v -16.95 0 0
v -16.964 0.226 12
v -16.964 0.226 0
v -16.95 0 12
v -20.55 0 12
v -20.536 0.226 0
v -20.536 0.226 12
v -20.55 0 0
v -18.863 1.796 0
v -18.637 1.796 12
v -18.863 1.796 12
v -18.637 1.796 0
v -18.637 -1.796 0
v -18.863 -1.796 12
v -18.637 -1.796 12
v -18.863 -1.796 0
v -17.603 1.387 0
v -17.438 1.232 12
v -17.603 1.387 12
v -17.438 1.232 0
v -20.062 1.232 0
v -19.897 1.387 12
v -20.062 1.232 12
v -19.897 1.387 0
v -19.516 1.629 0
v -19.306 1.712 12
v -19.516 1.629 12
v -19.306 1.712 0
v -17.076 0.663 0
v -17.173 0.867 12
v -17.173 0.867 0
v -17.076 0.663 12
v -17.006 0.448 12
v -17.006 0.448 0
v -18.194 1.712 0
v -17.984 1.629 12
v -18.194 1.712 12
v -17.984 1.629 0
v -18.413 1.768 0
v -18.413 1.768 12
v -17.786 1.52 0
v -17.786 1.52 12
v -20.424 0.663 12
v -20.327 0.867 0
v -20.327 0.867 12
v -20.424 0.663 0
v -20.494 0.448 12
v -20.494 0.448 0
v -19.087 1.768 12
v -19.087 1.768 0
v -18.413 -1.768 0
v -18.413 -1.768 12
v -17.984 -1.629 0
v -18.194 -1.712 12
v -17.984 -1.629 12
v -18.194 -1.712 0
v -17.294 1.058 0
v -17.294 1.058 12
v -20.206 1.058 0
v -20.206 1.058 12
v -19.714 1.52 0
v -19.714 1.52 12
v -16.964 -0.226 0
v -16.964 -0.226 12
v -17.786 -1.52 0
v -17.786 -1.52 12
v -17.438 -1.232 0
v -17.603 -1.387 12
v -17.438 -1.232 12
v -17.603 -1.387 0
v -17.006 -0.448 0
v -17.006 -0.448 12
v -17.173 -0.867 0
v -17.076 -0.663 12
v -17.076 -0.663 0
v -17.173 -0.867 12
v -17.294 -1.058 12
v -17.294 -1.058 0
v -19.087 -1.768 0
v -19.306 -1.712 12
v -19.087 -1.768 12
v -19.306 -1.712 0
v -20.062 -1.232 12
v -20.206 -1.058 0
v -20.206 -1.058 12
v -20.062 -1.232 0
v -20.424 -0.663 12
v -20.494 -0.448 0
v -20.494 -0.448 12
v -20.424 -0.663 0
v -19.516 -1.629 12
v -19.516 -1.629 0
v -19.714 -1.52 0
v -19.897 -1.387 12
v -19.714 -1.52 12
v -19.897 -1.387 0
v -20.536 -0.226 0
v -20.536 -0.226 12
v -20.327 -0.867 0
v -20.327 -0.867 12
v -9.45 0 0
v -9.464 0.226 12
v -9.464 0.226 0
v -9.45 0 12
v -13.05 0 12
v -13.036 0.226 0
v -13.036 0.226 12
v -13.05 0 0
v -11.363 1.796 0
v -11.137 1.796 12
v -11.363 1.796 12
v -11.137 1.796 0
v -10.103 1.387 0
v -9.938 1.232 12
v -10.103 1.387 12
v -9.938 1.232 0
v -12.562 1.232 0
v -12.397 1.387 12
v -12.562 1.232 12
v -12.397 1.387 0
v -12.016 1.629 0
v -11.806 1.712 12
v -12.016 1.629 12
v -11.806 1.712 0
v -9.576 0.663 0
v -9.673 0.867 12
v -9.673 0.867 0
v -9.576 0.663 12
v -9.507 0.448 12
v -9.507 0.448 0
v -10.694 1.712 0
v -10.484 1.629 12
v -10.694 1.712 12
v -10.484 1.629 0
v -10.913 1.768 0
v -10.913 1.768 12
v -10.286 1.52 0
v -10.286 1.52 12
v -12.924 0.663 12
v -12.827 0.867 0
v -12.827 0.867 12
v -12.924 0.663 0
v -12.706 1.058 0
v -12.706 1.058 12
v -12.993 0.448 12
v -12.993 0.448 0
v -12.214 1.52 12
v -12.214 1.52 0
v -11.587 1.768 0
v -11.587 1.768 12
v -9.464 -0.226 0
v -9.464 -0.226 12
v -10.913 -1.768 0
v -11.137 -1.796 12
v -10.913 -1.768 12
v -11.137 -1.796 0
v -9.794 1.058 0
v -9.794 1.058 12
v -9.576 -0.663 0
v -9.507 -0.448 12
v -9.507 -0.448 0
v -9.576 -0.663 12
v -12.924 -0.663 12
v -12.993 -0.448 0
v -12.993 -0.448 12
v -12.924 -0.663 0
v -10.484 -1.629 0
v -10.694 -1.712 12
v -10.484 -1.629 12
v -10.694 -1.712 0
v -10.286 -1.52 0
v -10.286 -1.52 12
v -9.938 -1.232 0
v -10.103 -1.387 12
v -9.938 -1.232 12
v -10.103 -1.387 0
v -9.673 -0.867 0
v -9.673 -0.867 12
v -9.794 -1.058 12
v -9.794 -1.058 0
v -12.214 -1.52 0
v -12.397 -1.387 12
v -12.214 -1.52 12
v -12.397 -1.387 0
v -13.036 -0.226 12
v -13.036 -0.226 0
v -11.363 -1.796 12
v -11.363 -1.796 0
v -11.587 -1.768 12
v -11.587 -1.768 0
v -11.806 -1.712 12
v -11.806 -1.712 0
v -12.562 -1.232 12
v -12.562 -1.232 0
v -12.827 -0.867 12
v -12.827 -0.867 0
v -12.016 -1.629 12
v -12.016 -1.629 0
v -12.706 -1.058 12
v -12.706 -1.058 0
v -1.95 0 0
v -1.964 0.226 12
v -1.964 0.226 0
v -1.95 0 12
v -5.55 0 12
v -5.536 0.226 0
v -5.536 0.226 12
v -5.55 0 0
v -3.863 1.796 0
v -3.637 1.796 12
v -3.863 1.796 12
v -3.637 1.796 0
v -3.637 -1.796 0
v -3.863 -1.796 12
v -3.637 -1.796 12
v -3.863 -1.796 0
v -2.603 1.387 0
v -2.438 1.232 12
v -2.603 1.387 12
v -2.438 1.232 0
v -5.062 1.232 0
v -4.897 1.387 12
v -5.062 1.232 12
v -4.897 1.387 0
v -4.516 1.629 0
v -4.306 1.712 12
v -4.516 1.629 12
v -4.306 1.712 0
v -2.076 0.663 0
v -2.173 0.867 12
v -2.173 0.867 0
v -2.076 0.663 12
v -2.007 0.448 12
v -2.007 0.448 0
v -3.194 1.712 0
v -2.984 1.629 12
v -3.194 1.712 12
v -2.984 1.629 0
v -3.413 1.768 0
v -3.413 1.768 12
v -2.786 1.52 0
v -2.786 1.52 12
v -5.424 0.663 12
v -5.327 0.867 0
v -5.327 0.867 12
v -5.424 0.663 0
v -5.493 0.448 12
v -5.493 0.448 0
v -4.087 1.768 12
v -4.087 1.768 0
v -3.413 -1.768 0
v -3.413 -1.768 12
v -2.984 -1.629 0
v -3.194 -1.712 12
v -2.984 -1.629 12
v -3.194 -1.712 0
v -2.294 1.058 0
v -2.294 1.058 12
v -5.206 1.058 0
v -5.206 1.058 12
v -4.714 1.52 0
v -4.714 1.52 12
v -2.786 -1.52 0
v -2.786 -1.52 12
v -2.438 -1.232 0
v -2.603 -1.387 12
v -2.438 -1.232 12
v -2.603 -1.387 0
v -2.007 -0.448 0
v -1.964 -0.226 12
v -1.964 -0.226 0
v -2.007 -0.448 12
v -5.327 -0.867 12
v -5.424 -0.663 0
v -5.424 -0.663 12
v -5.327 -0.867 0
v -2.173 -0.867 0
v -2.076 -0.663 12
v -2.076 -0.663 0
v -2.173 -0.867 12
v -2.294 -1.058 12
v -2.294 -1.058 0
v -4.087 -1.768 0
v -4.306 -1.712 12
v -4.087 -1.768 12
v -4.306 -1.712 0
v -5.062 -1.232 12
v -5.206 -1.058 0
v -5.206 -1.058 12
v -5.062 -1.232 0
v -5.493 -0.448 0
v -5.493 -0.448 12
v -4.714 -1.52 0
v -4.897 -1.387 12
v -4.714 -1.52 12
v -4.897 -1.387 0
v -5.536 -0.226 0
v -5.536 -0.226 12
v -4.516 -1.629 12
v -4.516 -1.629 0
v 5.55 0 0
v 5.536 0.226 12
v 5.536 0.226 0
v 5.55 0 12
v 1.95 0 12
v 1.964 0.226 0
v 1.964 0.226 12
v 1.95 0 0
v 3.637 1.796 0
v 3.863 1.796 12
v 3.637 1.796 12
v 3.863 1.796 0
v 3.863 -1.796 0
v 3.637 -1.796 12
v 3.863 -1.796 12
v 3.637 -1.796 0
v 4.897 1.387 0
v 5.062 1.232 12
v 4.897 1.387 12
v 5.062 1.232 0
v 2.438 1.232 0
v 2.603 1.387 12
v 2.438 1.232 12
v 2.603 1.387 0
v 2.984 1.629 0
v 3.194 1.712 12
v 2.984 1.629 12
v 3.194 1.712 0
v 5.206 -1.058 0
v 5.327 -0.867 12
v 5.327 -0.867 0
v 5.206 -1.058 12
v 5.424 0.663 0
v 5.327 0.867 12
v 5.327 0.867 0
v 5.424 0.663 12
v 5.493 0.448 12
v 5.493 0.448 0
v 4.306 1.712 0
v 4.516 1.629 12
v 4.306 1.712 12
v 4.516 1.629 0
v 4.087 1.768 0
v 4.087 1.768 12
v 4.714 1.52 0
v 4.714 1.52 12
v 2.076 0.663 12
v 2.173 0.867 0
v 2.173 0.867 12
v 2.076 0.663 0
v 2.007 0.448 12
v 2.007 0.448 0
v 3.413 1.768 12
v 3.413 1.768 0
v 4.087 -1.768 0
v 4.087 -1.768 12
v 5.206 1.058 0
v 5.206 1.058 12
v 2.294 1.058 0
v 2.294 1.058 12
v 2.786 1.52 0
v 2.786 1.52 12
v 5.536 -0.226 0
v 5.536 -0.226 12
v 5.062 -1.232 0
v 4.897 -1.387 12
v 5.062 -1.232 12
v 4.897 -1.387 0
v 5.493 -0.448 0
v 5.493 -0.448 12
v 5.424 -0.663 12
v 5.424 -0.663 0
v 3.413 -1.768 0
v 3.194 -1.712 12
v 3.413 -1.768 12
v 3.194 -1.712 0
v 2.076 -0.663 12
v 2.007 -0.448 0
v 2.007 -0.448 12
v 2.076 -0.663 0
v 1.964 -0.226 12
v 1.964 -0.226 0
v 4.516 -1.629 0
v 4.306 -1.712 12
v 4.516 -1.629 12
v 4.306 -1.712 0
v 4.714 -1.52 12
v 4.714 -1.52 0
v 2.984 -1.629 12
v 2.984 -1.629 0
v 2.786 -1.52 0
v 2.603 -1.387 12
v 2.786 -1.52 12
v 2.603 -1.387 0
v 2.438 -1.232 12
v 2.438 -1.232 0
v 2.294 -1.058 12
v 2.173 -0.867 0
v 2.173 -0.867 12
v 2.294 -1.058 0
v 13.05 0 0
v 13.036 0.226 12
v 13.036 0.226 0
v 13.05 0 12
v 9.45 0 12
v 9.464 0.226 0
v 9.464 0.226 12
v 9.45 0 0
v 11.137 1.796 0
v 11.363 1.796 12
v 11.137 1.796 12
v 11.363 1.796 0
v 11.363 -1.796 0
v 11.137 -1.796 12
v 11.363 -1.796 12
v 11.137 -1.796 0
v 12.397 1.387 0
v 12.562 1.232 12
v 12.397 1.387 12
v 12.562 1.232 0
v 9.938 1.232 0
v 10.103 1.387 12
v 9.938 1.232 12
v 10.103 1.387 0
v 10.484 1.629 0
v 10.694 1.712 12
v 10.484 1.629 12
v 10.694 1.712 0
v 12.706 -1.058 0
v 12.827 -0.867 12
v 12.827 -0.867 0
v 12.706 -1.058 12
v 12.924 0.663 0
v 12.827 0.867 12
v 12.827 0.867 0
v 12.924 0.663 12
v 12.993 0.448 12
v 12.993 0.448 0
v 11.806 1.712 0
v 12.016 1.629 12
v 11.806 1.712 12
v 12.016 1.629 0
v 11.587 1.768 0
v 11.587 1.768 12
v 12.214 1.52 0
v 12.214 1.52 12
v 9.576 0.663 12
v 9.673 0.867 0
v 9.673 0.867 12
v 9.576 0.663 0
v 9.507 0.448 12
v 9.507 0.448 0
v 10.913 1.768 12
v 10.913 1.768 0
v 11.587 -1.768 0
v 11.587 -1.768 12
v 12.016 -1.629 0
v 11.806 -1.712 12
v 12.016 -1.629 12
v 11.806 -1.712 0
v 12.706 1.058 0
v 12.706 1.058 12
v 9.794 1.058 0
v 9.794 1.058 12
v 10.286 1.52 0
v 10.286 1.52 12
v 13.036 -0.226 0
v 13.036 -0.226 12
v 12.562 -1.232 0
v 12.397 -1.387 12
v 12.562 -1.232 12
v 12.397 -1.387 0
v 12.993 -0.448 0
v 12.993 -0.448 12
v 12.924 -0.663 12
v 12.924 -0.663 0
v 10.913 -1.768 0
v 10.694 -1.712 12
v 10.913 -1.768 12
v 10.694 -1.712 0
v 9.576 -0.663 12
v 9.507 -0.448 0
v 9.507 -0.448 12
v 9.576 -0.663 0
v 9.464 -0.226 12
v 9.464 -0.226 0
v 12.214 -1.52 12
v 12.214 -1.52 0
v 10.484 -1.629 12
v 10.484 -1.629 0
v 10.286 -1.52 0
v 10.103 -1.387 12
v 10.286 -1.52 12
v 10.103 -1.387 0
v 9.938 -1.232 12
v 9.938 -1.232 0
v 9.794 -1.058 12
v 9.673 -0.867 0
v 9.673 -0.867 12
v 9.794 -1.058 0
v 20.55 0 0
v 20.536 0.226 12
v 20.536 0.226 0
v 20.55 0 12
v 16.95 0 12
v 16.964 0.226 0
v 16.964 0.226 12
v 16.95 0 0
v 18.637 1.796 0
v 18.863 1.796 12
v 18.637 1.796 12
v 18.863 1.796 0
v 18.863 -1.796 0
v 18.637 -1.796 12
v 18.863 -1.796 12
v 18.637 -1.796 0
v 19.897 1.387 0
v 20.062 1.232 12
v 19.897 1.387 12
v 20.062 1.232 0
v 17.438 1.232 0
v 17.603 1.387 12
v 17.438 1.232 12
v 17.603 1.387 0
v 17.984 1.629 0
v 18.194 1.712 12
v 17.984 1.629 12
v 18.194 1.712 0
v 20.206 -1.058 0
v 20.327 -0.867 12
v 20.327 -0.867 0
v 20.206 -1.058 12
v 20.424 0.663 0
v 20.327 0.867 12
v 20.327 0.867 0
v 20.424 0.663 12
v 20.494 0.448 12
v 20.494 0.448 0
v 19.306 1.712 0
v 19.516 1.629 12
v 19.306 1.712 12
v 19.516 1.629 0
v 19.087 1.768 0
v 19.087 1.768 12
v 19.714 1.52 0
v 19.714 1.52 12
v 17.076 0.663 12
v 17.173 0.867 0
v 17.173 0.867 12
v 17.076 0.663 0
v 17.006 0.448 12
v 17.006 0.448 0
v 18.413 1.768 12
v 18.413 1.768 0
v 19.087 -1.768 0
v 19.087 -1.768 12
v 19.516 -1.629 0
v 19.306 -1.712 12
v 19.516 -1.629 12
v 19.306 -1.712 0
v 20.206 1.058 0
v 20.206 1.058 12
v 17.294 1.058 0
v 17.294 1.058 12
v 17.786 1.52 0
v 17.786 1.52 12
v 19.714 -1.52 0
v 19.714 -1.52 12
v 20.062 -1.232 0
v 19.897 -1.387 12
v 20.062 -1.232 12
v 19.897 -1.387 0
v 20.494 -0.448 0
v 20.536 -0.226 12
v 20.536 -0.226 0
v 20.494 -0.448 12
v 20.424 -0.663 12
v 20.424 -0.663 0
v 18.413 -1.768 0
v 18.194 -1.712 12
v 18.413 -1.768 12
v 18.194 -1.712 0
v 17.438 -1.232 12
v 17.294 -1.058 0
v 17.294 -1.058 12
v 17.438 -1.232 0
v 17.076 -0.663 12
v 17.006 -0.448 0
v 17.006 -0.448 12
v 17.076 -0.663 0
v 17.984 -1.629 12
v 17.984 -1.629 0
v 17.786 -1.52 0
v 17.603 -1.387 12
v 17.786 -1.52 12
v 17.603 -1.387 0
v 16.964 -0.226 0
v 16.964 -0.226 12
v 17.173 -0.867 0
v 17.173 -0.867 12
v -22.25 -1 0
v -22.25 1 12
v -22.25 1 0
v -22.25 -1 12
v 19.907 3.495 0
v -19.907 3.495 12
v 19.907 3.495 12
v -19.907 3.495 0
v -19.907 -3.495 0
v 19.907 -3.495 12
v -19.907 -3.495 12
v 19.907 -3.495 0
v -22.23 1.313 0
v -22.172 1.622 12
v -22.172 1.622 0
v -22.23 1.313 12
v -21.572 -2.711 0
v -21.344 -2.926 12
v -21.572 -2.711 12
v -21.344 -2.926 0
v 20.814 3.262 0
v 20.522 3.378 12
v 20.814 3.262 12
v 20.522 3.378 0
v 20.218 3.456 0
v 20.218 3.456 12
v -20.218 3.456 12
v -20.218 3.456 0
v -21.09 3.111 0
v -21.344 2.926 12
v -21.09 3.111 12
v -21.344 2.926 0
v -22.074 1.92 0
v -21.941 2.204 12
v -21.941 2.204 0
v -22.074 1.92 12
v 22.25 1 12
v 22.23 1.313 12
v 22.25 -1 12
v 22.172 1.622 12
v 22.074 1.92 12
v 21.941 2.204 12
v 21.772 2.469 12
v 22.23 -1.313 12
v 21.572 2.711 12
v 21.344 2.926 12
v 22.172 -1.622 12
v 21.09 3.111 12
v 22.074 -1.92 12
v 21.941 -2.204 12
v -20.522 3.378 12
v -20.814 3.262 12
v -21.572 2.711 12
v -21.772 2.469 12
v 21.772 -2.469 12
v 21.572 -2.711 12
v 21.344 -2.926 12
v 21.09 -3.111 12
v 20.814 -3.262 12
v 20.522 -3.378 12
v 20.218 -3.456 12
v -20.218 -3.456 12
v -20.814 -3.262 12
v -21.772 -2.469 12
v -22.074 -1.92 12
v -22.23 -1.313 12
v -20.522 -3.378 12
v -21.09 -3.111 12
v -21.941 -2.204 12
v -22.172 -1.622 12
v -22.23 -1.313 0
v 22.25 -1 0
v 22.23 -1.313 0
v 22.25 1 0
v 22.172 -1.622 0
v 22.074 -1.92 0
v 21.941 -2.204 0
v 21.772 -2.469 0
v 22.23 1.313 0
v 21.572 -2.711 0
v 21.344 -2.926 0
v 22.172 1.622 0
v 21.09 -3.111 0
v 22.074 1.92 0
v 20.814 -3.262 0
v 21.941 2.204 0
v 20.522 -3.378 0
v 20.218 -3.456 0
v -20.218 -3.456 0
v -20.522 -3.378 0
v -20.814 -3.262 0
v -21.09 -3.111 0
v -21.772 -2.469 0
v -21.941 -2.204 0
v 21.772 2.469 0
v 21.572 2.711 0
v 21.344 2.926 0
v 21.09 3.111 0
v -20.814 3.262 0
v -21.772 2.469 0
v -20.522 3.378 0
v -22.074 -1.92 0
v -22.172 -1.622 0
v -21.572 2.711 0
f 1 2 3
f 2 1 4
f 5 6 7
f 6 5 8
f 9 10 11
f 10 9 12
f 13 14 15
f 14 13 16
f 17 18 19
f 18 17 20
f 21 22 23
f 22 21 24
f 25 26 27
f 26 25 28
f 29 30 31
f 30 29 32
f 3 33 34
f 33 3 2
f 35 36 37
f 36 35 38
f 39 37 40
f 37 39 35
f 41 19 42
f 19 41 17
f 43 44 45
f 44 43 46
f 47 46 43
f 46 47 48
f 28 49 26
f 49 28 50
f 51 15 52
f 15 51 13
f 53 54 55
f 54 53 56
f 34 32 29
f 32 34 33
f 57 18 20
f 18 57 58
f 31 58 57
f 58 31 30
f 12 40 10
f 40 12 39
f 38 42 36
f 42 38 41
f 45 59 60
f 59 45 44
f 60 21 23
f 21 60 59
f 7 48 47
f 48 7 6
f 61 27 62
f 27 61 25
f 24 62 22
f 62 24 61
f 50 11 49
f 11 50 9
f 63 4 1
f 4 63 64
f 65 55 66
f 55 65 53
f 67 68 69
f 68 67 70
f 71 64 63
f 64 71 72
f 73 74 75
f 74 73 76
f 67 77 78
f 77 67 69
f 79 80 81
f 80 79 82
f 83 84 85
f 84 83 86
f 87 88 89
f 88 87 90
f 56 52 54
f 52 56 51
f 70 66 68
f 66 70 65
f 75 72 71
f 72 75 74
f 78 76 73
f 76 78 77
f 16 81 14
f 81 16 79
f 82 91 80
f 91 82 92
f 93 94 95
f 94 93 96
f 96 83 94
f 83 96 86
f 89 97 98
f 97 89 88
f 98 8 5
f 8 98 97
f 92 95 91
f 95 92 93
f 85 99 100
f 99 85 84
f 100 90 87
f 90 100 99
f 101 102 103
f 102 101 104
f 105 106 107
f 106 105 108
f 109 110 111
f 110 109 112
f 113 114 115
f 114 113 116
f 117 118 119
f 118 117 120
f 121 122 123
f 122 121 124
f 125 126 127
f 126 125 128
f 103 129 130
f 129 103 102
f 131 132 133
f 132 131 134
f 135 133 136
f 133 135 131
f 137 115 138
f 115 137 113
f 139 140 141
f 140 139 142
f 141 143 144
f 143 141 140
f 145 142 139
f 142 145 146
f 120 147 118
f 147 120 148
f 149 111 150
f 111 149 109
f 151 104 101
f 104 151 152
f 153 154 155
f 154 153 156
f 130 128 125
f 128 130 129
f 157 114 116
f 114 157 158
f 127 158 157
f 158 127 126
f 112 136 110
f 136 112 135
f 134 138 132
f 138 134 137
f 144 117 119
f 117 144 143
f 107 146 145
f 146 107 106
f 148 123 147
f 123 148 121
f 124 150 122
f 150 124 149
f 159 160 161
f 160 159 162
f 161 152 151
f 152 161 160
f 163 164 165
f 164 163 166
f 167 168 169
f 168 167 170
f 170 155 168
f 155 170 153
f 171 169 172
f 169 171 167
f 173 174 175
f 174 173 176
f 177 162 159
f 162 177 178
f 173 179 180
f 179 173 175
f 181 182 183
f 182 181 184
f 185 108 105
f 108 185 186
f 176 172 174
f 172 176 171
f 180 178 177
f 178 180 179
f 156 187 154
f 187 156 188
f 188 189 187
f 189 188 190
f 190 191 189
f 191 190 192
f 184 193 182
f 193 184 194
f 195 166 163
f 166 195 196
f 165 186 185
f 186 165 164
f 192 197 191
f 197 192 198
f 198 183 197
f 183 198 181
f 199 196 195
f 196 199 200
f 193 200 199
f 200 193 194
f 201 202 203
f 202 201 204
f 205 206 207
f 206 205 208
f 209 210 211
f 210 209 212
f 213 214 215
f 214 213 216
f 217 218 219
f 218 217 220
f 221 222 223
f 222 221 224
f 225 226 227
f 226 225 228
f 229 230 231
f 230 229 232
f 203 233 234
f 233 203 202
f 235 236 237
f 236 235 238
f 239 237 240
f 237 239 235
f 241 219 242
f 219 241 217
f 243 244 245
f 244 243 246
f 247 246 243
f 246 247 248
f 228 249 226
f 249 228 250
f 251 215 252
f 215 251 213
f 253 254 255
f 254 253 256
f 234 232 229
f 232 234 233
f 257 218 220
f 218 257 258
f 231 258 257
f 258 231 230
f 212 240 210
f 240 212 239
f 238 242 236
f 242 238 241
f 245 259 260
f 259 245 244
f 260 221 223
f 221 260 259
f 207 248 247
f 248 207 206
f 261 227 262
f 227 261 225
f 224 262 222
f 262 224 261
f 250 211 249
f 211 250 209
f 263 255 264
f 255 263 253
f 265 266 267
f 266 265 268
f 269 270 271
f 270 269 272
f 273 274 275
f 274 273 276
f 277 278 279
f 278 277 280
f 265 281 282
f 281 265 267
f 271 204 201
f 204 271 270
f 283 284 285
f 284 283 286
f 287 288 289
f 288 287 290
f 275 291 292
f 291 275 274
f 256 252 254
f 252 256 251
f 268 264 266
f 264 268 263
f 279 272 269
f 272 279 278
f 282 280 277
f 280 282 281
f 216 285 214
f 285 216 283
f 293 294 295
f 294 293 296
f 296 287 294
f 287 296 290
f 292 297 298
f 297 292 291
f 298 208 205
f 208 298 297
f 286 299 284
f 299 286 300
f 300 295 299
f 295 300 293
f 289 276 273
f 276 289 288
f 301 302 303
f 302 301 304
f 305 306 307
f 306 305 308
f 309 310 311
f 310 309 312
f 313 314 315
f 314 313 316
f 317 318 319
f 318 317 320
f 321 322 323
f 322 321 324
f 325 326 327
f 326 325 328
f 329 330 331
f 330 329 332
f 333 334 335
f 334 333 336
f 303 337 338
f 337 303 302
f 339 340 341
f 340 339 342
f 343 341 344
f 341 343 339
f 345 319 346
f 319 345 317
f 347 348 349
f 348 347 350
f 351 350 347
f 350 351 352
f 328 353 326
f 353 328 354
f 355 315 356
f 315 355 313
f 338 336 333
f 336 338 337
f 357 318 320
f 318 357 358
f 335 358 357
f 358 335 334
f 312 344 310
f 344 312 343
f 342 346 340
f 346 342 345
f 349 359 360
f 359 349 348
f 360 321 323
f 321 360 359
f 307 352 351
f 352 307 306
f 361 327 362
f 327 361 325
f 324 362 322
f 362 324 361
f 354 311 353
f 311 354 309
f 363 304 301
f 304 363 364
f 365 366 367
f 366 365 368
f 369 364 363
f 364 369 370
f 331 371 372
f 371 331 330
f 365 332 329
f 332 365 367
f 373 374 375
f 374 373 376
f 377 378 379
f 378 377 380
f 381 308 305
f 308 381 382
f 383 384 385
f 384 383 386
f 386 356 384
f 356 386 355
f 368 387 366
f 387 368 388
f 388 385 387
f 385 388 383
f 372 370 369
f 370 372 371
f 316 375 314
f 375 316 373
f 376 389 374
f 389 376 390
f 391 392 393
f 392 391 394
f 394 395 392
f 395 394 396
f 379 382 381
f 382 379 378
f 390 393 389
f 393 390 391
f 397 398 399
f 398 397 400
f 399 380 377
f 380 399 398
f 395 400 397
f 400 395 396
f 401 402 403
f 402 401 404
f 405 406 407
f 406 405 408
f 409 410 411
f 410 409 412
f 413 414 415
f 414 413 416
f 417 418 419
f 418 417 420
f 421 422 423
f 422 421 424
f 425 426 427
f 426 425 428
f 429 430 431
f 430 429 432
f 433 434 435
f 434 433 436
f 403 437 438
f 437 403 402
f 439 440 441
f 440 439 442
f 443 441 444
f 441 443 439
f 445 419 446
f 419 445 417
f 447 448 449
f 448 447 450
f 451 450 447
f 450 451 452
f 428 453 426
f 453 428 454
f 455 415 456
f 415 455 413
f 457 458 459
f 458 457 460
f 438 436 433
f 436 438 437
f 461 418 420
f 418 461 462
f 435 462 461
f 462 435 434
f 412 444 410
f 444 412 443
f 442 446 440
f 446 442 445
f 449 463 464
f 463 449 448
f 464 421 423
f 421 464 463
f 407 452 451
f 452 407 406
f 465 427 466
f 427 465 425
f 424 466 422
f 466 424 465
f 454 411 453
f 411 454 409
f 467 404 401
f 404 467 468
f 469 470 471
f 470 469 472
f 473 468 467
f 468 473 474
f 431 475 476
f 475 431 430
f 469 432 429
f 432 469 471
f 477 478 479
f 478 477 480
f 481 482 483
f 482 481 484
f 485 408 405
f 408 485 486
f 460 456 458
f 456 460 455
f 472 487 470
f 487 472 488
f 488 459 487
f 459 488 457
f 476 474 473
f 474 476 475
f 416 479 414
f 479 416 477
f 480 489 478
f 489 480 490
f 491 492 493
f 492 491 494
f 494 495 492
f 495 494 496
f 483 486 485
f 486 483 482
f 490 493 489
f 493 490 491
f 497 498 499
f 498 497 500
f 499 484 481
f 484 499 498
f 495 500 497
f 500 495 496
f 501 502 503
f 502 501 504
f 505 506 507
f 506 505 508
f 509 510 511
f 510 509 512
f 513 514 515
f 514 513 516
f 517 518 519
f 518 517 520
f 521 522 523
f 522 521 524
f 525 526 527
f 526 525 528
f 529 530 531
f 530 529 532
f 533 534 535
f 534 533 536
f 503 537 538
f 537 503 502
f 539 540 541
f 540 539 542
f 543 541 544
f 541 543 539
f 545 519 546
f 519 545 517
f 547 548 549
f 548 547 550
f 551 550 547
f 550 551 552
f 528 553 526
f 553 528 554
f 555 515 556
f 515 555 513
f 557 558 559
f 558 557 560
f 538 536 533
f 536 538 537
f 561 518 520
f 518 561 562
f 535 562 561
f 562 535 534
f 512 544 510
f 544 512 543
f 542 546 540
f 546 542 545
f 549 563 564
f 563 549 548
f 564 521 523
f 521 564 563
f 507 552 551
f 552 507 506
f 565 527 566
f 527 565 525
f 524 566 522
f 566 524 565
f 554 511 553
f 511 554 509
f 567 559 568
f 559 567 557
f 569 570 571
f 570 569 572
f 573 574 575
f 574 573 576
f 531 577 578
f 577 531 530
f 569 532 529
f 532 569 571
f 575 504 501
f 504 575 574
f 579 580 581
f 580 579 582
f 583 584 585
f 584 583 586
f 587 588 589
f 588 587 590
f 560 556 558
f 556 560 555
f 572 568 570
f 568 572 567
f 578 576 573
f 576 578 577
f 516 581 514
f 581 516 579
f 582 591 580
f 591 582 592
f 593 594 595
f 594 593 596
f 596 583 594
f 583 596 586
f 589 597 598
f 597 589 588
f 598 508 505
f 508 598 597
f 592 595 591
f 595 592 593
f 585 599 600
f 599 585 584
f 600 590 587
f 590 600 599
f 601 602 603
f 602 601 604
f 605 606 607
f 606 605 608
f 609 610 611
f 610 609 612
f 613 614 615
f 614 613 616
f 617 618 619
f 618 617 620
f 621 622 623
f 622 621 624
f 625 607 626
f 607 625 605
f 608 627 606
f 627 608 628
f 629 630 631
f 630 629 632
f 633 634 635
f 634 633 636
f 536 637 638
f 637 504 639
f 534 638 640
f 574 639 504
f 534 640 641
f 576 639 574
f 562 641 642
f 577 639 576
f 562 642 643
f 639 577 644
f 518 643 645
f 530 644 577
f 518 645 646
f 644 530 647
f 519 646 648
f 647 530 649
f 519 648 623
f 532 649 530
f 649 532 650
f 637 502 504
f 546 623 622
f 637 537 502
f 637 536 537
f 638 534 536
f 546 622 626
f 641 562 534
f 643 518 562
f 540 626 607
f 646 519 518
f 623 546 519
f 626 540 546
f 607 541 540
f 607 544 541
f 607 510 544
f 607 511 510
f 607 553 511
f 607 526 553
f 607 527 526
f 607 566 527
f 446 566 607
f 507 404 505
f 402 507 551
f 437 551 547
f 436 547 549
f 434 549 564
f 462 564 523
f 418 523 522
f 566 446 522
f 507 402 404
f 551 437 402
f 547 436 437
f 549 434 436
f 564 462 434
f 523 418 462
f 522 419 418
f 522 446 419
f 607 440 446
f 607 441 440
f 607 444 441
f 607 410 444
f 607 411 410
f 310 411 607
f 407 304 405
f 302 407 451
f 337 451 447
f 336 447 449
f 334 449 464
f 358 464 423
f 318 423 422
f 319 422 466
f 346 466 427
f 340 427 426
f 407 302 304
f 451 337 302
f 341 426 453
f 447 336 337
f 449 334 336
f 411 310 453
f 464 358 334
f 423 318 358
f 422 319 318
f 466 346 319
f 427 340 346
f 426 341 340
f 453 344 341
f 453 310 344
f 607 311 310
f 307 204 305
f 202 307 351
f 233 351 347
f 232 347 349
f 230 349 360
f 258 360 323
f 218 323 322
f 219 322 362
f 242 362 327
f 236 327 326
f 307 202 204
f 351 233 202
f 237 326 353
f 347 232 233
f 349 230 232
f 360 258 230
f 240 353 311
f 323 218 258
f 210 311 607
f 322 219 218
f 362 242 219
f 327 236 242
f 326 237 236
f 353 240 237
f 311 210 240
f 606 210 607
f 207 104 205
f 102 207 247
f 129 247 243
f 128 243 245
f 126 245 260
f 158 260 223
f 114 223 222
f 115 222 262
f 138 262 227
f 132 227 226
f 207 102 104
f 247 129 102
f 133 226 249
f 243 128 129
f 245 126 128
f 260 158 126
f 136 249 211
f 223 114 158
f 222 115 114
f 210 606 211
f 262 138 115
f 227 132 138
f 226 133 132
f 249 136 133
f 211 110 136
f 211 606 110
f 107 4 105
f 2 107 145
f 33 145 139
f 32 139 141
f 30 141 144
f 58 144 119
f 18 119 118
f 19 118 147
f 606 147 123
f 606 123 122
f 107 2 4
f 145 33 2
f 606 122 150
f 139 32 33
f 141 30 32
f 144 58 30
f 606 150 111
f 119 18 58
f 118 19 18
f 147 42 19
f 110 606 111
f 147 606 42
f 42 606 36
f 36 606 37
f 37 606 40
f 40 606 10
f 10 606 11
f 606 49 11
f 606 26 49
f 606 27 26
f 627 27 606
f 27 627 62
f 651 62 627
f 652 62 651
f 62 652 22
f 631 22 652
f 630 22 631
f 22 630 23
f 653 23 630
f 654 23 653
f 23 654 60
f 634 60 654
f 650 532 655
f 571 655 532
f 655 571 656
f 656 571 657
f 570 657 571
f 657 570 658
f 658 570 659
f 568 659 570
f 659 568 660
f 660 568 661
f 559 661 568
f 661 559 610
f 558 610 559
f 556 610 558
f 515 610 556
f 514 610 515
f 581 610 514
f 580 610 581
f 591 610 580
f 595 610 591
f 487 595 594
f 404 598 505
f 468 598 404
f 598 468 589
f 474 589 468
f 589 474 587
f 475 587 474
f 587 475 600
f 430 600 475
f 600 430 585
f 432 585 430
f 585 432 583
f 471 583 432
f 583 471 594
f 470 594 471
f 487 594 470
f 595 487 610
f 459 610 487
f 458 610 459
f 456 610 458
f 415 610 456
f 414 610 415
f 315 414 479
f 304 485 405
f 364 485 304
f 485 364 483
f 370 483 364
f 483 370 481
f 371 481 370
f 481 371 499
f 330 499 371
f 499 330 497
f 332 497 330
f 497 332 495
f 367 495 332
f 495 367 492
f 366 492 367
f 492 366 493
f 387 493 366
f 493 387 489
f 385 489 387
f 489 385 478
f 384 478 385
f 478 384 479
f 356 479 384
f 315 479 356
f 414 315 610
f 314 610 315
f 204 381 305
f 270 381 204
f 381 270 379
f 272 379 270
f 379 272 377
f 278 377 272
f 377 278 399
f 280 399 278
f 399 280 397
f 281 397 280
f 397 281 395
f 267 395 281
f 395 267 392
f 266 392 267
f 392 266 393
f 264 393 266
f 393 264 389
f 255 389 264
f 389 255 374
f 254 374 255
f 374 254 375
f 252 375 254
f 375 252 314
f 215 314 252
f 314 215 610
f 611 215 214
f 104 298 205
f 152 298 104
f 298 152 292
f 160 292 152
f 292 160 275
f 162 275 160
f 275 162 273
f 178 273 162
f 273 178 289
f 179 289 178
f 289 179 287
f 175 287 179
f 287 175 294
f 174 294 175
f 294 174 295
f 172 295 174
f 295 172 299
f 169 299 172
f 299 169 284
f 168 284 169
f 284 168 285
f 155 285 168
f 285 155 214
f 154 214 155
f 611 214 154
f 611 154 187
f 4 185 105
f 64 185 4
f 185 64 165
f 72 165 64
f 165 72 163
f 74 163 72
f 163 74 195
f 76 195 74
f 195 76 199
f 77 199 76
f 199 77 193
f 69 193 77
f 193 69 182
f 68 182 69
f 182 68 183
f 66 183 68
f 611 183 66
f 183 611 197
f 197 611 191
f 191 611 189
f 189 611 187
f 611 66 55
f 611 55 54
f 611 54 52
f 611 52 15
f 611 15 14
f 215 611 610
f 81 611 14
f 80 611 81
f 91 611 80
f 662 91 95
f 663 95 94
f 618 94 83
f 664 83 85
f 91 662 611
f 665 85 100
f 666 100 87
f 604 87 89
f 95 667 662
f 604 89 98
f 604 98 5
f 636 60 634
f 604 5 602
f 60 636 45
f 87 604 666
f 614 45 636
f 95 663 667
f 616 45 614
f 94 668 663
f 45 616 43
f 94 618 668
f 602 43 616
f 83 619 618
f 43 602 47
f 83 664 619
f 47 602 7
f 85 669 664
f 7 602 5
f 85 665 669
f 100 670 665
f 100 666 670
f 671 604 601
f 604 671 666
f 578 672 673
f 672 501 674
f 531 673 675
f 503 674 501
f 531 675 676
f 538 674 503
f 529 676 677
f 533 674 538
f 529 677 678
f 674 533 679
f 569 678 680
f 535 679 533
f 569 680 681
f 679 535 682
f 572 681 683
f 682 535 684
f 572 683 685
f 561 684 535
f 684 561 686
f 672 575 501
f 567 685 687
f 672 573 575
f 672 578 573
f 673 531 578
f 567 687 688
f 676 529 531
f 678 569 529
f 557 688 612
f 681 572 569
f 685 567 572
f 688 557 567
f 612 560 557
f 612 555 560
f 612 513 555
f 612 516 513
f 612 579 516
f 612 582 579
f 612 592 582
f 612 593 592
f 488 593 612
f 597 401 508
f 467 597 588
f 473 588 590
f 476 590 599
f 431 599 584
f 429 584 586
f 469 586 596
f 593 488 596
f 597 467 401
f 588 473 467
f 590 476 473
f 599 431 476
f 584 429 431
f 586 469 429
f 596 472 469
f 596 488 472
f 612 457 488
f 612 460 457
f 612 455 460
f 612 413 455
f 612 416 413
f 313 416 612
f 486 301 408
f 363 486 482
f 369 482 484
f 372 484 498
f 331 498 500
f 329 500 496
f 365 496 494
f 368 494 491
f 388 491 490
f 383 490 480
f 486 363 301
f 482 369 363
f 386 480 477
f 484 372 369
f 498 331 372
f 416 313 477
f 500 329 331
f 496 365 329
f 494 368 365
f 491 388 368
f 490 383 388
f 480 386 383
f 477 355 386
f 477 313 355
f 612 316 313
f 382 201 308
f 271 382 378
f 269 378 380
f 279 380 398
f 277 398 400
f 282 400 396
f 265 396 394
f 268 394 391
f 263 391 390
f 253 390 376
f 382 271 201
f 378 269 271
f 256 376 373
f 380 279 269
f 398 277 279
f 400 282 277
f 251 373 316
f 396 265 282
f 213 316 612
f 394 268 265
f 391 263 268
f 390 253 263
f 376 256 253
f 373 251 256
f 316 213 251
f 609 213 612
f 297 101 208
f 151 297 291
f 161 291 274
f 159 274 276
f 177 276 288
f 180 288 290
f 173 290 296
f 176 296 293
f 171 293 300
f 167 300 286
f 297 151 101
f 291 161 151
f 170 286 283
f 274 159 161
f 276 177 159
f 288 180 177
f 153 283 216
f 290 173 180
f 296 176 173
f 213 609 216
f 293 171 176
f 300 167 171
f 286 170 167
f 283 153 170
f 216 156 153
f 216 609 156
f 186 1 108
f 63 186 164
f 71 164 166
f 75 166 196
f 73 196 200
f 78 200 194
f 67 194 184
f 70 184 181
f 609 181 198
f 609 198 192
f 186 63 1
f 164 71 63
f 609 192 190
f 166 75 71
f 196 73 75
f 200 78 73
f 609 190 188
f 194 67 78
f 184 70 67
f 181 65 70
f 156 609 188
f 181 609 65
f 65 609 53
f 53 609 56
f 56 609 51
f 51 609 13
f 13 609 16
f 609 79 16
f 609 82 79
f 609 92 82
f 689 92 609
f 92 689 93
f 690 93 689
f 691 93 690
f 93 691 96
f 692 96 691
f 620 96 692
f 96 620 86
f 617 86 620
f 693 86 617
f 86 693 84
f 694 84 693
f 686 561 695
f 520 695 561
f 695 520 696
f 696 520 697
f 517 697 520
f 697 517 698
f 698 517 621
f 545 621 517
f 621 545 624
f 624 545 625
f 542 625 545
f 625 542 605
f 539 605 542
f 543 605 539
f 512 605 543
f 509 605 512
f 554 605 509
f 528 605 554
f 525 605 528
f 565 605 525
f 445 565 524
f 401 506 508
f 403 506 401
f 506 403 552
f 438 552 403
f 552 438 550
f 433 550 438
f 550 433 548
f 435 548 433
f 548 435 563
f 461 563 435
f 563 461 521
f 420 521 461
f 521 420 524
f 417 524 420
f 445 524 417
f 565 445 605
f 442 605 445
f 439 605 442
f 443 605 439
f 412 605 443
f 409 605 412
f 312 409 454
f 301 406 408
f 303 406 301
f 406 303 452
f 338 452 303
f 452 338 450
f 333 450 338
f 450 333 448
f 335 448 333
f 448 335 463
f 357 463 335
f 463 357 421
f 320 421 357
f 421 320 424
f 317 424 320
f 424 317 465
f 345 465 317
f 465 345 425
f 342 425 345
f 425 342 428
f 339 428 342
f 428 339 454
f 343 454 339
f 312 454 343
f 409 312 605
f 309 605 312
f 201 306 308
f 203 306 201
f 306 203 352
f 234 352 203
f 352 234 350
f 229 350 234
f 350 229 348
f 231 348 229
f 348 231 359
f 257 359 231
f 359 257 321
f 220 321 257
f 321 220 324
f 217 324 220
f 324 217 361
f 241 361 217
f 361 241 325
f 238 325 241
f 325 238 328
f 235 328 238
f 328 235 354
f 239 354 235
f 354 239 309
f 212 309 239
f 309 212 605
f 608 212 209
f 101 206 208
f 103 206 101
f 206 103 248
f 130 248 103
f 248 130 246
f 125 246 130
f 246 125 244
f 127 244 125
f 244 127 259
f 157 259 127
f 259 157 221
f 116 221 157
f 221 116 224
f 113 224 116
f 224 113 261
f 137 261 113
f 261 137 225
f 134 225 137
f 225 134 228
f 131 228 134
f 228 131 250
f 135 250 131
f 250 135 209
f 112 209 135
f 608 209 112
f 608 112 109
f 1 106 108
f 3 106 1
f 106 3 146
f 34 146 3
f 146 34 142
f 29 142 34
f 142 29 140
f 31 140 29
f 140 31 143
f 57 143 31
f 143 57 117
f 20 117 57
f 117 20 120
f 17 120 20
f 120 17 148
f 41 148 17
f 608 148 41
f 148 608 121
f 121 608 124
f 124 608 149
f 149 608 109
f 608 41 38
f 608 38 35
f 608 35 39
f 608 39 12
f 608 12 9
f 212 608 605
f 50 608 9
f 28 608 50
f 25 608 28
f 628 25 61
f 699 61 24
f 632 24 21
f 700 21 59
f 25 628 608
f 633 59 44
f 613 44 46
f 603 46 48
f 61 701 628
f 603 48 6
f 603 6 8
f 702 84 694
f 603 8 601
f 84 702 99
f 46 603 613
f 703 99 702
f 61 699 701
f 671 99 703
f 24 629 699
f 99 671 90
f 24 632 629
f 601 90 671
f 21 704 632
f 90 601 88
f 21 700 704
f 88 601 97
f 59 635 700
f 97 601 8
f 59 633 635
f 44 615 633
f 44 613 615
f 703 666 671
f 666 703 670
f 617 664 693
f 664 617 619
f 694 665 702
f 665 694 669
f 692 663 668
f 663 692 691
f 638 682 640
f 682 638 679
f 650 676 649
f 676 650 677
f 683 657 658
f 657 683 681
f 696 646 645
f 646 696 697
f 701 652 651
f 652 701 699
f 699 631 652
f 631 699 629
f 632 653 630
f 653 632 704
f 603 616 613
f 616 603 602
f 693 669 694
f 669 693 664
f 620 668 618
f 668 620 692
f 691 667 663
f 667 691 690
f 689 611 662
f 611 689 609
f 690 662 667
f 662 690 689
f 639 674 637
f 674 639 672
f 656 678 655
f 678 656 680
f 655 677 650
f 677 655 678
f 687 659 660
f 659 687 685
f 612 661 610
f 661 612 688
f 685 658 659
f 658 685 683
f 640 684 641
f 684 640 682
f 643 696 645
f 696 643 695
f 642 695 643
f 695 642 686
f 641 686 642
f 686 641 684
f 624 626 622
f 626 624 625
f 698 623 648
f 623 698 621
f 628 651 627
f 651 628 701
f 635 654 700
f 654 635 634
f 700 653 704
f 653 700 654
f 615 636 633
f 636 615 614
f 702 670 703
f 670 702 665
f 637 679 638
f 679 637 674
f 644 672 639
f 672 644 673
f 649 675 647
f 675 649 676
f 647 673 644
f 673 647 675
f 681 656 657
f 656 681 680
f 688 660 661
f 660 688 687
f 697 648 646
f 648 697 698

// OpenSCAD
$fn = 50;


difference() {
	union() {
		translate(v = [0, 0, 0]) {
			rotate(a = [0, 0, 0]) {
				hull() {
					translate(v = [-19.7500000000, 1.0000000000, 0]) {
						rotate(a = [0, 0, 0]) {
							translate(v = [0, 0, 0]) {
								rotate(a = [0, 0, 0]) {
									cylinder(h = 12, r = 2.5000000000);
								}
							}
						}
					}
					translate(v = [19.7500000000, 1.0000000000, 0]) {
						rotate(a = [0, 0, 0]) {
							translate(v = [0, 0, 0]) {
								rotate(a = [0, 0, 0]) {
									cylinder(h = 12, r = 2.5000000000);
								}
							}
						}
					}
					translate(v = [-19.7500000000, -1.0000000000, 0]) {
						rotate(a = [0, 0, 0]) {
							translate(v = [0, 0, 0]) {
								rotate(a = [0, 0, 0]) {
									cylinder(h = 12, r = 2.5000000000);
								}
							}
						}
					}
					translate(v = [19.7500000000, -1.0000000000, 0]) {
						rotate(a = [0, 0, 0]) {
							translate(v = [0, 0, 0]) {
								rotate(a = [0, 0, 0]) {
									cylinder(h = 12, r = 2.5000000000);
								}
							}
						}
					}
				}
			}
		}
	}
	union() {
		translate(v = [-18.7500000000, 0.0000000000, 0]) {
			rotate(a = [0, 0, 0]) {
				translate(v = [0, 0, -50]) {
					rotate(a = [0, 0, 0]) {
						cylinder(h = 100, r = 1.8000000000);
					}
				}
			}
		}
		translate(v = [-11.2500000000, 0.0000000000, 0]) {
			rotate(a = [0, 0, 0]) {
				translate(v = [0, 0, -50]) {
					rotate(a = [0, 0, 0]) {
						cylinder(h = 100, r = 1.8000000000);
					}
				}
			}
		}
		translate(v = [-3.7500000000, 0.0000000000, 0]) {
			rotate(a = [0, 0, 0]) {
				translate(v = [0, 0, -50]) {
					rotate(a = [0, 0, 0]) {
						cylinder(h = 100, r = 1.8000000000);
					}
				}
			}
		}
		translate(v = [3.7500000000, 0.0000000000, 0]) {
			rotate(a = [0, 0, 0]) {
				translate(v = [0, 0, -50]) {
					rotate(a = [0, 0, 0]) {
						cylinder(h = 100, r = 1.8000000000);
					}
				}
			}
		}
		translate(v = [11.2500000000, 0.0000000000, 0]) {
			rotate(a = [0, 0, 0]) {
				translate(v = [0, 0, -50]) {
					rotate(a = [0, 0, 0]) {
						cylinder(h = 100, r = 1.8000000000);
					}
				}
			}
		}
		translate(v = [18.7500000000, 0.0000000000, 0]) {
			rotate(a = [0, 0, 0]) {
				translate(v = [0, 0, -50]) {
					rotate(a = [0, 0, 0]) {
						cylinder(h = 100, r = 1.8000000000);
					}
				}
			}
		}
	}
}
